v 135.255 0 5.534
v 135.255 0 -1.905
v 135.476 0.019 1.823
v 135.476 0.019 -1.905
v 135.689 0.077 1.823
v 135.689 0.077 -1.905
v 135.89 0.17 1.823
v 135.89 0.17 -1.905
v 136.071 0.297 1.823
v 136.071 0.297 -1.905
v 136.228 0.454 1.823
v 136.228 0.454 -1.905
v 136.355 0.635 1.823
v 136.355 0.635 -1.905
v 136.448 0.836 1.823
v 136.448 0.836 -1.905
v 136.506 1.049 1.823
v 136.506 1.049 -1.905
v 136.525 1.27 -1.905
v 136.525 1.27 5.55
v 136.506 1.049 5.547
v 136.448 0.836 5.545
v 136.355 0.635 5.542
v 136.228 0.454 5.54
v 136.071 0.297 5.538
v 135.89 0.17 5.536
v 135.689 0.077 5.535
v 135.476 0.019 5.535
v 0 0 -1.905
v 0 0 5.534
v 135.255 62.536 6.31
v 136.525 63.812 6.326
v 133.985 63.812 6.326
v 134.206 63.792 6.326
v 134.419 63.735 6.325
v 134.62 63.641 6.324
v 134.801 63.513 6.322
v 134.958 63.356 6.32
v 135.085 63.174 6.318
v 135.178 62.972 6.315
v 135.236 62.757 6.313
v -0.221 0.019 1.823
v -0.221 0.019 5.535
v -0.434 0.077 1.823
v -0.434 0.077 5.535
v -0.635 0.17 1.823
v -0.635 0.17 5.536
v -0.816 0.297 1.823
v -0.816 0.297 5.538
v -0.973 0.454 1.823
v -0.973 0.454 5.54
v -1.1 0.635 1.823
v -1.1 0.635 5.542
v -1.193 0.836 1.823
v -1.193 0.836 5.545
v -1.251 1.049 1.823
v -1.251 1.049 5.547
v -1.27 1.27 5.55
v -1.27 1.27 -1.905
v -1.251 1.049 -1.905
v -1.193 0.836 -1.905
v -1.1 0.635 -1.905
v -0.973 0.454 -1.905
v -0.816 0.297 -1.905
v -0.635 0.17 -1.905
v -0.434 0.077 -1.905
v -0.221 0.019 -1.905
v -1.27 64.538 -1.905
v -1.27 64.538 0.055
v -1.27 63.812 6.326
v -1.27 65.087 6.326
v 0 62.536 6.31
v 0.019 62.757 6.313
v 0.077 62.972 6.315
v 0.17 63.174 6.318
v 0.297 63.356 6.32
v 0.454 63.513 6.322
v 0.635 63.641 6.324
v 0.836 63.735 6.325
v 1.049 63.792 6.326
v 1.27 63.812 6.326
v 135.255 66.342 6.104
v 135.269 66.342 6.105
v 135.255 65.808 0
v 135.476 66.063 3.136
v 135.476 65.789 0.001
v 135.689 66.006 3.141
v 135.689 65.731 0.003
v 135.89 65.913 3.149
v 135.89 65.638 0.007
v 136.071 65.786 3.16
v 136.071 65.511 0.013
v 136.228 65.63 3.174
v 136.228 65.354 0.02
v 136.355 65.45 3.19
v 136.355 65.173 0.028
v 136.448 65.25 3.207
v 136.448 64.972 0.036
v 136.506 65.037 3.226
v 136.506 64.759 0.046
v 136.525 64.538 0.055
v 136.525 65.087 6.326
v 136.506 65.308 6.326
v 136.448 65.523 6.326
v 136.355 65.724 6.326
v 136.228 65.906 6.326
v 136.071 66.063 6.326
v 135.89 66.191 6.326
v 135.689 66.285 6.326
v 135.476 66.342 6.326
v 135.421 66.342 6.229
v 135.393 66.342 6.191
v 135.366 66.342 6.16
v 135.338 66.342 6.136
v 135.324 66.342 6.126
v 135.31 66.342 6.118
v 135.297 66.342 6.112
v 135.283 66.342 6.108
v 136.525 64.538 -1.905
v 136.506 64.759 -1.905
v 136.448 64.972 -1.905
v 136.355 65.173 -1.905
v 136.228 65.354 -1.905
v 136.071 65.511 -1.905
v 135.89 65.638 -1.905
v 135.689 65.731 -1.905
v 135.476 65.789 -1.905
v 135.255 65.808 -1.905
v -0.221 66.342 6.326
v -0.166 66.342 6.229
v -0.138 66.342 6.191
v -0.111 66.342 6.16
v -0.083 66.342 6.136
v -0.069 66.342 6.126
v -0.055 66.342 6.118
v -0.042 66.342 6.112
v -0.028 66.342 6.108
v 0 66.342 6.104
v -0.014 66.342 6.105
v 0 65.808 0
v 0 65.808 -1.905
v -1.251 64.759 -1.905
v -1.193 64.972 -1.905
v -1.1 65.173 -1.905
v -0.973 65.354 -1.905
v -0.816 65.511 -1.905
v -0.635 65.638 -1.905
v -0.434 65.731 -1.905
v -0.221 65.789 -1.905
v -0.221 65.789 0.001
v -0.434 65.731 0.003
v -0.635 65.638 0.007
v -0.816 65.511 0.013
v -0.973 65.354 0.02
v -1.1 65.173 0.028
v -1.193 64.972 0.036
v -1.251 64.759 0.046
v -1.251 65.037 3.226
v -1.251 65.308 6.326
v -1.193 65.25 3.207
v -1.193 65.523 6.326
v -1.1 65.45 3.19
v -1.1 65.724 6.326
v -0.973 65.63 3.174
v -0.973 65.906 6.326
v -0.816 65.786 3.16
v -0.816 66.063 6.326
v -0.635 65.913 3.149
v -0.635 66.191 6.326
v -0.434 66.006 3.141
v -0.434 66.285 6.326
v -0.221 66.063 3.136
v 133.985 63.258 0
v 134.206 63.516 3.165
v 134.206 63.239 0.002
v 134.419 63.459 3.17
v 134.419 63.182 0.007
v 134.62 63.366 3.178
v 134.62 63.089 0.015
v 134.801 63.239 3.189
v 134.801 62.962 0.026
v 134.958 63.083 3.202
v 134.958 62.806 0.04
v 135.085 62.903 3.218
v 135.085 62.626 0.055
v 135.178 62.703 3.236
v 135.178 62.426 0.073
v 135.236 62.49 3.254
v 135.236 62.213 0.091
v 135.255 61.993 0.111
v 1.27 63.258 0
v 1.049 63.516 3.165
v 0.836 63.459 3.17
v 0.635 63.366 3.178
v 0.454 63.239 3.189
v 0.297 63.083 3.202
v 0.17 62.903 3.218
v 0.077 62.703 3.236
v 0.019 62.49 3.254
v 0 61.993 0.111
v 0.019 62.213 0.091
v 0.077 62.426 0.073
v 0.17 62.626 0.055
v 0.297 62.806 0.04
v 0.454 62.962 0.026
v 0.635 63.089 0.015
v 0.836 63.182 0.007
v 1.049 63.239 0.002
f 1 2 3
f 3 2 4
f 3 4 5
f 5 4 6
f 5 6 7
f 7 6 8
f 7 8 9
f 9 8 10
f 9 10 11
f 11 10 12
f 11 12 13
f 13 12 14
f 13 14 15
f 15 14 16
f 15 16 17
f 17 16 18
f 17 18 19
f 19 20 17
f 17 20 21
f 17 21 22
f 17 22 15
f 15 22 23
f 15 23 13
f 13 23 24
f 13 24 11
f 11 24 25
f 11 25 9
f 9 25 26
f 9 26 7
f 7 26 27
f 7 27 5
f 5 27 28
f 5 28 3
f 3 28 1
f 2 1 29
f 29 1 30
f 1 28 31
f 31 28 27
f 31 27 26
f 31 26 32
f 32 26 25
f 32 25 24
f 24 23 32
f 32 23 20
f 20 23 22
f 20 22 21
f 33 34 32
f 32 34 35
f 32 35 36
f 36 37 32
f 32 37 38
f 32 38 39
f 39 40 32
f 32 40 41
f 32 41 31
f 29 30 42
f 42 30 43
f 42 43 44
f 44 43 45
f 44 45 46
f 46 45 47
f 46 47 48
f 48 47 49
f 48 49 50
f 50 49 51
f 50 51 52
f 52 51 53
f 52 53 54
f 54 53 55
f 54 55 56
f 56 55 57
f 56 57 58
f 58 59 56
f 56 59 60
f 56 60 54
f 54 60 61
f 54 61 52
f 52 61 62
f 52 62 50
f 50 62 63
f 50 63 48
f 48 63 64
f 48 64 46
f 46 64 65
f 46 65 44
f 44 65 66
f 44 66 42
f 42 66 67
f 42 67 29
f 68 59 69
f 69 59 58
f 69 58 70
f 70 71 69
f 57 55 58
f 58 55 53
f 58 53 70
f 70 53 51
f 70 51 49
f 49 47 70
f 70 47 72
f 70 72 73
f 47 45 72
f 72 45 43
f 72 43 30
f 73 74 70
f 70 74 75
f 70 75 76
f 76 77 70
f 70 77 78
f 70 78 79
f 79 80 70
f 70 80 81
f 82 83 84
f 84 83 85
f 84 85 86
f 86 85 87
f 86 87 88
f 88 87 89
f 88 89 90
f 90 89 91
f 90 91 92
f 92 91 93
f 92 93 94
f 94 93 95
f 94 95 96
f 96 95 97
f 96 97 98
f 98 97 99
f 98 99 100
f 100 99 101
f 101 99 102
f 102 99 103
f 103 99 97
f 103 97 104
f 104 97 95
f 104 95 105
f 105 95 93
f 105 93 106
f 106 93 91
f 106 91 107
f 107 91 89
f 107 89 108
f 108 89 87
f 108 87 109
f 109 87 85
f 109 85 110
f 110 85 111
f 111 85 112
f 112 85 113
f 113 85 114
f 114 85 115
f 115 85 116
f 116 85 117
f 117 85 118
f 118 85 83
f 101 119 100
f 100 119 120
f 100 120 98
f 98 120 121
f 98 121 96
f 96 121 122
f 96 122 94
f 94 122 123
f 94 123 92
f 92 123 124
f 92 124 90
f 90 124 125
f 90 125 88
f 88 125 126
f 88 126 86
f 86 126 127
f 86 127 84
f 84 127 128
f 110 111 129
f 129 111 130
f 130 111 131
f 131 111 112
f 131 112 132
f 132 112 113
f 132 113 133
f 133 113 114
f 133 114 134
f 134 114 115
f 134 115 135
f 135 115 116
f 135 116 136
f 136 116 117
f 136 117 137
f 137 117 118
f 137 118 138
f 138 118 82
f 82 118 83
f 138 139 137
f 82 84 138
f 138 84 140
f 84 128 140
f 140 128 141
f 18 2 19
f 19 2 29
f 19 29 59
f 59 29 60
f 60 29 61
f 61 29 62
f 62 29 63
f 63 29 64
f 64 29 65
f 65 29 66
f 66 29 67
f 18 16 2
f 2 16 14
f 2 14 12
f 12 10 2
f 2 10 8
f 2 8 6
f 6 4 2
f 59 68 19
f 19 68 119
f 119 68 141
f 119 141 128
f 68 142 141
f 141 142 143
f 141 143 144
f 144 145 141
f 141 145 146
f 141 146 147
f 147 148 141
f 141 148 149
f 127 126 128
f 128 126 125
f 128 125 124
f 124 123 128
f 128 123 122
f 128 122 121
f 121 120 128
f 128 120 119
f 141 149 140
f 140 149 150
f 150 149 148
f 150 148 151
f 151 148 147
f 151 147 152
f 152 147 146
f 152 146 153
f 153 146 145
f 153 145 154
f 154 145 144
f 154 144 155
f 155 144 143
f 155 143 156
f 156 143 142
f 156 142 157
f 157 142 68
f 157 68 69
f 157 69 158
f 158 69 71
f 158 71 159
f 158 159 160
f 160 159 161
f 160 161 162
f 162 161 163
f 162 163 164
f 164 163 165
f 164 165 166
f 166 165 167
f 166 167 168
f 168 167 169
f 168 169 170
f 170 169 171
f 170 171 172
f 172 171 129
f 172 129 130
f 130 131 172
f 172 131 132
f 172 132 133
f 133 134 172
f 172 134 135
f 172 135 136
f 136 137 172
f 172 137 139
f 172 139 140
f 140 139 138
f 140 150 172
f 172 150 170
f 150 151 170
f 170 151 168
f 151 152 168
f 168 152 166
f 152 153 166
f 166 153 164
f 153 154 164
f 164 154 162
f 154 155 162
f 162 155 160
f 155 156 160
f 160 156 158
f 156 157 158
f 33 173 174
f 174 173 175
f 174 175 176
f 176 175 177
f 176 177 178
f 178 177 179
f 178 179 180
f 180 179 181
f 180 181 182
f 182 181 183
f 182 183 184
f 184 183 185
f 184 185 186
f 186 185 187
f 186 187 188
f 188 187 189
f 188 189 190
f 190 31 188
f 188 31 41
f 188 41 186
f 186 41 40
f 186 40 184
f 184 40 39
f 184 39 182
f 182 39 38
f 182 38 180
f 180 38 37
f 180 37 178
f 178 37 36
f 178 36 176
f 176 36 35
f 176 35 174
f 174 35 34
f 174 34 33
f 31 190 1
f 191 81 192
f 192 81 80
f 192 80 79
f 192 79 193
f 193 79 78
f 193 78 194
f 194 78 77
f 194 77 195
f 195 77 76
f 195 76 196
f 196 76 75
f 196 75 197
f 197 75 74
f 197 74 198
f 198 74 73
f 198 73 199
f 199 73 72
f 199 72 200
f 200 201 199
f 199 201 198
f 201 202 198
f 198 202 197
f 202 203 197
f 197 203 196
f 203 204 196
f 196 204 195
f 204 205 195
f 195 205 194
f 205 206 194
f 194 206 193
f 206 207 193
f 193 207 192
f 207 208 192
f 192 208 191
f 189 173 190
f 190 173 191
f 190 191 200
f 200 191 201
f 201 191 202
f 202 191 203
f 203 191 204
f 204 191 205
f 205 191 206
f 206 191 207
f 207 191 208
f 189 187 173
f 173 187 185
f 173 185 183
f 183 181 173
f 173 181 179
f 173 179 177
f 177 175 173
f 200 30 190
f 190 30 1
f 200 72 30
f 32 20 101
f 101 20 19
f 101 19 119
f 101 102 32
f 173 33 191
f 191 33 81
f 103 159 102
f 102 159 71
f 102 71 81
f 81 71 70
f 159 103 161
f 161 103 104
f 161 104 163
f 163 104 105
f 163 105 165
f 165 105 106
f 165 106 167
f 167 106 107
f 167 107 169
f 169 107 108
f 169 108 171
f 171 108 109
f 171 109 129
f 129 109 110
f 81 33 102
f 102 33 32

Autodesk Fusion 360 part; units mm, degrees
sketch "Sketch1" plane through (0, 0, 0) normal (1, 0, 0) x (0, 1, 0)
  line L0 (0, 0) -> (0, 5.5344)
  line L1 (0, 5.5344) -> (63.2584, 0)
  line L2 (63.2584, 0) -> (63.8118, 6.3258)
  line L3 (63.8118, 6.3258) -> (61.2815, 6.5472) construction
  line L4 (61.2815, 6.5472) -> (60.728, 0.2214) construction
  line L5 (0, 0) -> (63.2584, 0) construction
  line L6 (63.2584, 0) -> (63.2584, -1.905) construction
  line L7 (63.2584, -1.905) -> (0, -1.905)
  line L8 (0, -1.905) -> (0, 0)
  line L9 (66.3421, 6.1045) -> (65.7887, -0.2214)
  line L10 (63.8118, 6.3258) -> (66.3421, 6.1045) construction
  line L11 (63.2584, 0) -> (65.8081, 0) construction
  line L12 (65.8081, 0) -> (65.8081, -1.905)
  line L13 (65.8081, -1.905) -> (63.2584, -1.905)
  line L14 (63.8118, 6.3258) -> (66.3421, 6.1045) construction
  line L15 (63.8118, 6.3258) -> (66.3421, 6.3258)
  line L16 (66.3421, 6.3258) -> (66.3421, 6.1045)
  dimension "d1" = 2.54
  dimension "d3" = 6.35
  dimension "d4" = 63.5
  dimension "d7" = 1.905
  dimension "d15" = 5
extrude "Extrude1" add sketch "Sketch1" along normal blind 135.255
sketch "Sketch2" plane through (135.255, 0, 0) normal (1, 0, 0) x (0, 1, 0)
  line L0 (65.8081, -1.905) -> (65.8081, 0)
  line L1 (65.8081, 0) -> (66.3421, 6.1045)
  line L2 (63.8118, 6.3258) -> (63.2584, 0)
  line L3 (63.2584, 0) -> (0, 5.5344)
  line L4 (0, 5.5344) -> (0, -1.905)
  line L5 (0, -1.905) -> (65.8081, -1.905)
  line L6 (63.8118, 6.3258) -> (0, 5.5344)
  line L7 (63.8118, 6.3258) -> (66.3421, 6.3572)
  line L8 (66.3421, 6.3572) -> (66.3421, 6.1045)
  line L9 (66.3421, 6.3258) -> (63.8118, 6.3258)
  line L10 (66.3421, 6.1045) -> (66.3421, 6.3258)
extrude "Extrude2" add sketch "Sketch2" along normal blind 1.27 contours L0 L1 L2 L3 L4 L5 L8 L9 L10 | L2 L3 L6
extrude "Extrude3" add 1 faces at (136.525, 43.2066, 0.8386) along direction (-1, 0, 0) blind 1.27 from surface at 136.525
fillet "Fillet1" radius 1.27 8 edges at (0, 63.5351, 3.1629) (135.255, 63.5351, 3.1629) (-1.27, 66.0751, 3.0522) (-1.27, 65.8081, -0.9525) (136.525, 66.0751, 3.0522) (136.525, 65.8081, -0.9525) (-1.27, 0, 1.8147) (136.525, 0, 1.8147)
